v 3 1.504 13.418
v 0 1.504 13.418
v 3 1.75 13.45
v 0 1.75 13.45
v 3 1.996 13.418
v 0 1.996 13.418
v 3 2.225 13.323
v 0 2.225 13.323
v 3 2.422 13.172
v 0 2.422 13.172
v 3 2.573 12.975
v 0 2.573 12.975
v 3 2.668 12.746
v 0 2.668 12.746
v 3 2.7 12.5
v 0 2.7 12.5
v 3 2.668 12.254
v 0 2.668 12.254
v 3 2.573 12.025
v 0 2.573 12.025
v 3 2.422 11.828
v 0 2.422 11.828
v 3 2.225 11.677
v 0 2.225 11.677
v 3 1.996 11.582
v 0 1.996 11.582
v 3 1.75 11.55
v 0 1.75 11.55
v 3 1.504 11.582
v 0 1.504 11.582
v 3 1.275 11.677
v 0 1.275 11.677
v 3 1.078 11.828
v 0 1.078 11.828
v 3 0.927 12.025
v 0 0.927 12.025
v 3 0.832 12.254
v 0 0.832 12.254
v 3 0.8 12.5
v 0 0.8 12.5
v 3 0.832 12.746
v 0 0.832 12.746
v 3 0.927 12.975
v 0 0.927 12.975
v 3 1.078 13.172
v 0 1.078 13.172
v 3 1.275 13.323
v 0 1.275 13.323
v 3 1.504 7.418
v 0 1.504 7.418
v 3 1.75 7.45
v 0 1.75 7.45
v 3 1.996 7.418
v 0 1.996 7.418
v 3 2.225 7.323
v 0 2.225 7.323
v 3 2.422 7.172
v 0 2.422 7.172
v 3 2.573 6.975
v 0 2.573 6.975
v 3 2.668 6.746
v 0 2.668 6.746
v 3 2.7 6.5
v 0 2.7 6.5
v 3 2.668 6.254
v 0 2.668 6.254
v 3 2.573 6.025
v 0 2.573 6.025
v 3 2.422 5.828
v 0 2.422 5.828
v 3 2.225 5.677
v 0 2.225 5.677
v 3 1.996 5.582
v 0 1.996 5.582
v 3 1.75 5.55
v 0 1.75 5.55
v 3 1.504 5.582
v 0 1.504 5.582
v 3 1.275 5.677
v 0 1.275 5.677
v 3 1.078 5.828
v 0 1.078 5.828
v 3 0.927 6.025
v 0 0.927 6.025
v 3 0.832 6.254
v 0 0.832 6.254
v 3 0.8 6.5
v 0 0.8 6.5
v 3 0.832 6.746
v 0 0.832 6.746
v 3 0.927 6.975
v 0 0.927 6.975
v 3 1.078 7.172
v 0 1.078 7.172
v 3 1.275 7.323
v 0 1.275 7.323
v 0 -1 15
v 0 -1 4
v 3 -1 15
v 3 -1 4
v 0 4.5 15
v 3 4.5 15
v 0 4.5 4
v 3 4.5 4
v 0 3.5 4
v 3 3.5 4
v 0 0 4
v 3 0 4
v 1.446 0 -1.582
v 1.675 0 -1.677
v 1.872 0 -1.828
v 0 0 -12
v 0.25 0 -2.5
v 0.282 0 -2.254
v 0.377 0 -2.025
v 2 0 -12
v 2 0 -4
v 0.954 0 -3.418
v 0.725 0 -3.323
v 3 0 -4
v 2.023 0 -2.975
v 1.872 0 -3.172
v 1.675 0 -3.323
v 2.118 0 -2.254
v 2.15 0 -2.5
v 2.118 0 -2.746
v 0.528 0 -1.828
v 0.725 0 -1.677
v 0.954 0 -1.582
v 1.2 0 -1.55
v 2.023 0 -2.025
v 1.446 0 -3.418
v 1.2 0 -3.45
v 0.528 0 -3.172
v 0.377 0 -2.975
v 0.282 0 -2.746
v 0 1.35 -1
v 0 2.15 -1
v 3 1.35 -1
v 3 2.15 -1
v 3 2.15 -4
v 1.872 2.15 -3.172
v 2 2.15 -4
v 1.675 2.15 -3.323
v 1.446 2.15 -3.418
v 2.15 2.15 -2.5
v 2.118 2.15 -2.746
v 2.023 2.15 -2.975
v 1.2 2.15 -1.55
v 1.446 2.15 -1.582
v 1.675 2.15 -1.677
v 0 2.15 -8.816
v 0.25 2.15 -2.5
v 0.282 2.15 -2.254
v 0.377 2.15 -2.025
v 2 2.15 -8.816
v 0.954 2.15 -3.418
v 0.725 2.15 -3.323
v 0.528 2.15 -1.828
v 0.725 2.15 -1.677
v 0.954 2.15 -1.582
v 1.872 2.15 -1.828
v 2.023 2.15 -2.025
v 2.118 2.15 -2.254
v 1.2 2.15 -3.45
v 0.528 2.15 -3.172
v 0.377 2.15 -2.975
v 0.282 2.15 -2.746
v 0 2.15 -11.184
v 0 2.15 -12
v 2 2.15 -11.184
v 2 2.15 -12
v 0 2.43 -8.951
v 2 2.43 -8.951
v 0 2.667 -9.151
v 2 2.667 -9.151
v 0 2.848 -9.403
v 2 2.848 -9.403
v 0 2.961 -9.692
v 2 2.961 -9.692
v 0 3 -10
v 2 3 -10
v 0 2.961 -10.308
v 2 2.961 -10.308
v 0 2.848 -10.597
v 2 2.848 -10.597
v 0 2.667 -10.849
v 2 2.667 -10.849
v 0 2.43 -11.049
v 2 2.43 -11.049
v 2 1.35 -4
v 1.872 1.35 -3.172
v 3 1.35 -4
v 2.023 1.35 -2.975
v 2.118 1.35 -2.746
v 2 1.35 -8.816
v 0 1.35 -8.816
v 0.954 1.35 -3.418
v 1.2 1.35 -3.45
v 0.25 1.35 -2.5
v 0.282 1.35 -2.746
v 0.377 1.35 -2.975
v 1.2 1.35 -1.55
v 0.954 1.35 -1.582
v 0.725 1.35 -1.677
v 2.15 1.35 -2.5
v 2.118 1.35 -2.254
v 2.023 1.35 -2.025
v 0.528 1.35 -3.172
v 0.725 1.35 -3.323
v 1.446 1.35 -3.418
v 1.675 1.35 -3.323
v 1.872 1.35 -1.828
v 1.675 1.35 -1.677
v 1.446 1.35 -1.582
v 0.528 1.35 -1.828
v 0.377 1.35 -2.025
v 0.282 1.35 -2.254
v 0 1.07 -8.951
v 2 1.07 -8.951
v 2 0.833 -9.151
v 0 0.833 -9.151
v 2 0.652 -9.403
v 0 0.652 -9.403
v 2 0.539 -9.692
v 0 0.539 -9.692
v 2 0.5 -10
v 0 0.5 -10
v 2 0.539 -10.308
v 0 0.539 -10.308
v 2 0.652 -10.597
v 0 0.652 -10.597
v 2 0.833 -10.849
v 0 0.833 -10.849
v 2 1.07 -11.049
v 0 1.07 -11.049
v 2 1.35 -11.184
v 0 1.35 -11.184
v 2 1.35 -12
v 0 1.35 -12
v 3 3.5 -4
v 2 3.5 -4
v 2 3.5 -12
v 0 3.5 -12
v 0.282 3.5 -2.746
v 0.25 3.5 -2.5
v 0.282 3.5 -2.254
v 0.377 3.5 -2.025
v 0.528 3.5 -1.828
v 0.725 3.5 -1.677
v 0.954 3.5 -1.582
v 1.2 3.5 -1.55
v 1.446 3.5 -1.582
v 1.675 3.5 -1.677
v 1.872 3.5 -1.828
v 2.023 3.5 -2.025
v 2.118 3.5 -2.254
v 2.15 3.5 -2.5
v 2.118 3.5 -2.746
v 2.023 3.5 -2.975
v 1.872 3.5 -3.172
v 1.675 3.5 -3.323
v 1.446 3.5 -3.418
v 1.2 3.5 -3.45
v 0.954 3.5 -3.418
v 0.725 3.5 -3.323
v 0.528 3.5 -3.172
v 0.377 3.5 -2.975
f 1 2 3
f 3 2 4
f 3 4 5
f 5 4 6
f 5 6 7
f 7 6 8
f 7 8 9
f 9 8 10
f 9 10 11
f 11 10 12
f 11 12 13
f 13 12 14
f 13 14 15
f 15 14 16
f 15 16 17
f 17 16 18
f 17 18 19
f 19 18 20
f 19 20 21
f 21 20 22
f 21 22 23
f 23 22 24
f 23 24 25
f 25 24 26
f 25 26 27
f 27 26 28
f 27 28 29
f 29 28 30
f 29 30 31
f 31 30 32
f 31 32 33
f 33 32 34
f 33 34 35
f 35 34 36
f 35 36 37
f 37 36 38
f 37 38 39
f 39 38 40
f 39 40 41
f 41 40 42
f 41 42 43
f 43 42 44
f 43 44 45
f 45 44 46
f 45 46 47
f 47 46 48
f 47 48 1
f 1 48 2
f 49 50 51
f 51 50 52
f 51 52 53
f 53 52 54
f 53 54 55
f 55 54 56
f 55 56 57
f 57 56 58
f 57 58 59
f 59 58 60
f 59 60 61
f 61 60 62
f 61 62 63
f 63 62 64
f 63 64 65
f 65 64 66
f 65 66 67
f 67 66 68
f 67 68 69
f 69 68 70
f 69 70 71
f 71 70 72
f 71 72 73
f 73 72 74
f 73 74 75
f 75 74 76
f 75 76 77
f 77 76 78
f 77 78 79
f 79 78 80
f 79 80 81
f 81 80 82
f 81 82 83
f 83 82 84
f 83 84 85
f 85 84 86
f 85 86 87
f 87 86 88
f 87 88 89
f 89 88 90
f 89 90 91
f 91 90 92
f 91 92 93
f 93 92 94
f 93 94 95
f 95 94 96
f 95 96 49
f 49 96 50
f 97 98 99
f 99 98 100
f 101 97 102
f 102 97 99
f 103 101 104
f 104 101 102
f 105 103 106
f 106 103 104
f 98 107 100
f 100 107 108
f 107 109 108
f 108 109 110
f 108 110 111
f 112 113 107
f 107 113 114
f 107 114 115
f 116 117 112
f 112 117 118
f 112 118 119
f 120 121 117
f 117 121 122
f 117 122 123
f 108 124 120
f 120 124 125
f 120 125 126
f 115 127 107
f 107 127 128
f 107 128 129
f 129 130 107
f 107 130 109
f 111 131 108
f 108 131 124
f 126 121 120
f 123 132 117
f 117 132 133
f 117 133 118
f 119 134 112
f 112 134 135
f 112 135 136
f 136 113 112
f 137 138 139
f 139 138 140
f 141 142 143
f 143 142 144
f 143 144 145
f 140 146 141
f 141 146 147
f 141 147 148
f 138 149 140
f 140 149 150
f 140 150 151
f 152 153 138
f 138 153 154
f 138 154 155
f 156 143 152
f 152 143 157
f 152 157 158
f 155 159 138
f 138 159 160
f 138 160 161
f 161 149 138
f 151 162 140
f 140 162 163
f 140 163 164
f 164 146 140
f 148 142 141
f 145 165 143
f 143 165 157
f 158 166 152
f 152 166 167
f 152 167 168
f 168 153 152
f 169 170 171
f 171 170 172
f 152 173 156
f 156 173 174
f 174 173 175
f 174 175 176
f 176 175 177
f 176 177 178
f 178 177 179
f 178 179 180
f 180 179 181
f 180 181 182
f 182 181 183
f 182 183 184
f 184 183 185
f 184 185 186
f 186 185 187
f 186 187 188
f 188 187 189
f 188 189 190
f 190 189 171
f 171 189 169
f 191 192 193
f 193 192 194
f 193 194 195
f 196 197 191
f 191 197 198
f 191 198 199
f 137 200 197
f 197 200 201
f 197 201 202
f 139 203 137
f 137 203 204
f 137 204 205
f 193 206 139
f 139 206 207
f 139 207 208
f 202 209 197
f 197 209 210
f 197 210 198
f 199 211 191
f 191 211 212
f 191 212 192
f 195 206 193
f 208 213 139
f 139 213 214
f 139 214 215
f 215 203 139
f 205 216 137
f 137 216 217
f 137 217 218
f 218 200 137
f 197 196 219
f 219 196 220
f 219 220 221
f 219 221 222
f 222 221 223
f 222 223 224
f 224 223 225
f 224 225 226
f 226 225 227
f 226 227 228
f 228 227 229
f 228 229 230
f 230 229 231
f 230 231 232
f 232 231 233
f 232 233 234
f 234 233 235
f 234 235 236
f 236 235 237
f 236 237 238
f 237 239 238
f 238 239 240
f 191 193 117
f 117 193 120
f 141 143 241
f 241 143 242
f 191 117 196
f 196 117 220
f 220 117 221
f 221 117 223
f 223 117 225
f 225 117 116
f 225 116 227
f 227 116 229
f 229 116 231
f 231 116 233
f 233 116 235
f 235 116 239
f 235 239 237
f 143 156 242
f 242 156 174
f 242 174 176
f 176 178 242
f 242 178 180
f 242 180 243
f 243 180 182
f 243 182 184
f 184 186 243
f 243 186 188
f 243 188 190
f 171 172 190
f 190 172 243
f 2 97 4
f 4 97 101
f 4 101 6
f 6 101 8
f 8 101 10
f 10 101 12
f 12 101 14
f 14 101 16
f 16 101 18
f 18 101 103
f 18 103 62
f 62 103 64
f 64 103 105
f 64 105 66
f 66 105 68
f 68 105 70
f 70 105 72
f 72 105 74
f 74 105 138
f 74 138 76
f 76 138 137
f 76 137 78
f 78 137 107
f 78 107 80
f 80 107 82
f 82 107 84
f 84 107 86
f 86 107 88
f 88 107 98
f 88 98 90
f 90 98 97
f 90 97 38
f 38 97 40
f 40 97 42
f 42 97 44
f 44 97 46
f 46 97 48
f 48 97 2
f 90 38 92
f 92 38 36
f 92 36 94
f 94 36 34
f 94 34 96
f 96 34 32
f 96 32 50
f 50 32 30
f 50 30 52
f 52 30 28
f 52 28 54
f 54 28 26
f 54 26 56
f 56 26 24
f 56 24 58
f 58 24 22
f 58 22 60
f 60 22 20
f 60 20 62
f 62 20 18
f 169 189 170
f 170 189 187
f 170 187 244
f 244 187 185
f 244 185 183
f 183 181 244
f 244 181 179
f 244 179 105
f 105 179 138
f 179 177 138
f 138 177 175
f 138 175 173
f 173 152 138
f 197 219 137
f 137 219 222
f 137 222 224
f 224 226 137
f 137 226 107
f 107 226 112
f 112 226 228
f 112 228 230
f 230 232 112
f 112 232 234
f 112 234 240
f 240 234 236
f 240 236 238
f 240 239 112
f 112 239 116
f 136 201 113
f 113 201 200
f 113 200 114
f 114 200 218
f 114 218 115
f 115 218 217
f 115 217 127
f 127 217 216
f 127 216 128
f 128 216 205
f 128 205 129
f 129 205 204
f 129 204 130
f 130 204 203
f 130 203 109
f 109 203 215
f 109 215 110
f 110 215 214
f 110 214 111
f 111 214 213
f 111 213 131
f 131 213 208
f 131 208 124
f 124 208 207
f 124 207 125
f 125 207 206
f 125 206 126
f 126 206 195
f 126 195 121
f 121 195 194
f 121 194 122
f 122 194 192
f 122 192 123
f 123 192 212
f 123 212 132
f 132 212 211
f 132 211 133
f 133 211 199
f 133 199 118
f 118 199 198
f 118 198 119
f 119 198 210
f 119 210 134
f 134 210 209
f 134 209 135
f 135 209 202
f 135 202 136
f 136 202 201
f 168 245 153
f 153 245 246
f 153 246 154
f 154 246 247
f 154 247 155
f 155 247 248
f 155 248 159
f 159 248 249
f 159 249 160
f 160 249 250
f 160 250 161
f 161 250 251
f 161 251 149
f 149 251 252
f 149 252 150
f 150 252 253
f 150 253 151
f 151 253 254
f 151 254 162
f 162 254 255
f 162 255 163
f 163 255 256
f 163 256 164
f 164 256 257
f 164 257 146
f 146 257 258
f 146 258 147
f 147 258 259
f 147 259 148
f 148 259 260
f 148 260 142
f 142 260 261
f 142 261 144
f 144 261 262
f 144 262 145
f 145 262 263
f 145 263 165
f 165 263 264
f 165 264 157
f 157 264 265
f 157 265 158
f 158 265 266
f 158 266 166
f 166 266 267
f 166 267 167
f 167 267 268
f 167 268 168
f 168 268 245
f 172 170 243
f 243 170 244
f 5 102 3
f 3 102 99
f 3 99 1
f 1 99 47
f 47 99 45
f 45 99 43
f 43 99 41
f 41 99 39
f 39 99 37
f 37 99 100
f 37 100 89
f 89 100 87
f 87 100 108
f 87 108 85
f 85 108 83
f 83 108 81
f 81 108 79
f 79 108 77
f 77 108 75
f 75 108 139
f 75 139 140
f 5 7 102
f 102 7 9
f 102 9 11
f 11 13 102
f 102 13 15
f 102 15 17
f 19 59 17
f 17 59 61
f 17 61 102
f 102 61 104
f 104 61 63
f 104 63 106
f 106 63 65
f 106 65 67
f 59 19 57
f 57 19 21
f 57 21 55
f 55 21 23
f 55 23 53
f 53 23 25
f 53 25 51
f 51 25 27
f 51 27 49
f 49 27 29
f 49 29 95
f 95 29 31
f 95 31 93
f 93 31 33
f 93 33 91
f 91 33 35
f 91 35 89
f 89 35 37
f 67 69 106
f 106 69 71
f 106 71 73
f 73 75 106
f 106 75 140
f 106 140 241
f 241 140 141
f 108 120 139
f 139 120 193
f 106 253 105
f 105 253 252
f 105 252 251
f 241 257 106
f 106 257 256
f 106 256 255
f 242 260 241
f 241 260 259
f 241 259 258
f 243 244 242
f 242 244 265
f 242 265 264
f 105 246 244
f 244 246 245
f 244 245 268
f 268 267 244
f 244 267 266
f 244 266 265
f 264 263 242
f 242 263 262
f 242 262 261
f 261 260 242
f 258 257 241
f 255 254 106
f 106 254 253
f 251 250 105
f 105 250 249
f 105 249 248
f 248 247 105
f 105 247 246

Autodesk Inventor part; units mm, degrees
ref_plane "YZ Plane" through (0, 0, 0) normal (1, 0, 0) x (0, 1, 0)
ref_plane "XZ Plane" through (0, 0, 0) normal (0, 1, 0) x (-1, 0, 0)
ref_plane "XY Plane" through (0, 0, 0) normal (0, 0, 1) x (1, 0, 0)
sketch "Sketch2" plane through (0, 0, 0) normal (0, 1, 0) x (-1, 0, 0)
  line L0 (0, 0) -> (0, -12)
  line L1 (0, 0) -> (0, 10)
  line L2 (0, -12) -> (-2, -12)
  line L3 (-2, -12) -> (-2, -4)
  line L4 (-3, -4) -> (-2, -4)
  line L5 (-3, -4) -> (-3, -2.5) construction
  line L6 (-2, 10) -> (0, 10)
  line L7 (-3, -2.5) -> (0, -2.5) construction
  circle A0 centre (-1.2, -2.5) radius 0.95
  line L8 (-3, -4) -> (-3, 10)
  line L9 (-3, 10) -> (-2, 10)
  line L10 (0, 0) -> (-3, 0) construction
  dimension "d1" = 10
  dimension "d2" = 2
  dimension "d9" = 1.9
  dimension "d10" = 8
  dimension "d11" = 3
  dimension "d12" = 1.8
  dimension "d38" = 4
extrude "Extrusion1" add sketch "Sketch2" along normal blind 3.5
sketch "Sketch3" plane through (3, 0, 10) normal (1, 0, 0) x (0, 0, -1)
  line L0 (0, 0) -> (0, 3.5) projected
  line L1 (0, 1.75) -> (22, 1.75) construction
  line L2 (22, 1.75) -> (22, 2.15)
  line L3 (22, 0) -> (22, 3.5) projected
  line L4 (11, 2.15) -> (11, 1.35)
  line L5 (22, 2.15) -> (21.1843, 2.15)
  line L6 (18.8157, 2.15) -> (11, 2.15)
  line L7 (11, 1.35) -> (18.8157, 1.35)
  line L8 (21.1843, 1.35) -> (22, 1.35)
  arc A0 (18.8157, 1.35) -> (21.1843, 1.35) centre (20, 1.75) ccw
  arc A1 (21.1843, 2.15) -> (18.8157, 2.15) centre (20, 1.75) ccw
  line L9 (22, 1.75) -> (22, 1.35)
  point P0 (10, 0)
  dimension "d16" = 2
  dimension "d17" = 0.4
  dimension "d18" = 11
  dimension "d19" = 0.8
extrude "Extrusion2" cut sketch "Sketch3" against normal blind 10
sketch "Sketch4" plane through (0, 0, -12) normal (-1, 0, 0) x (0, 0, 1)
  point P0 (12, 0)
sketch "Sketch5" plane through (0, 0, -12) normal (-1, 0, 0) x (0, 0, 1)
  line L0 (16, 0) -> (16, -1)
  line L1 (16, -1) -> (22, -1)
  line L2 (22, 0) -> (16, 0)
  line L3 (16, 3.5) -> (16, 4.5)
  line L4 (16, 4.5) -> (22, 4.5)
  line L5 (22, 3.5) -> (16, 3.5)
  line L6 (22, 4.5) -> (27, 4.5)
  line L7 (27, 4.5) -> (27, -1)
  line L8 (27, -1) -> (22, -1)
  line L9 (22, 3.5) -> (22, 0)
  line L10 (12, 0) -> (12, 3.5) construction
  dimension "d23" = 1
  dimension "d24" = 1
  dimension "d27" = 5
  dimension "d39" = 5.5
  dimension "d40" = 4
extrude "Extrusion3" add sketch "Sketch5" against normal blind 3
sketch "Sketch6" plane through (0, 0, -12) normal (-1, 0, 0) x (0, 0, 1)
  line L0 (22, 1.75) -> (14, 1.75) construction
  line L1 (27, 4.5) -> (16, 4.5) projected
  circle A0 centre (24.5, 1.75) radius 0.95
  line L2 (27, -1) -> (27, 4.5) projected
  circle A1 centre (18.5, 1.75) radius 0.95
  point P0 (12, 0)
  dimension "d28" = 2.75
  dimension "d32" = 1.9
  dimension "d33" = 2.5
  dimension "d34" = 1.9
  dimension "d35" = 6
extrude "Extrusion4" cut sketch "Sketch6" against normal blind 3
properties part number "ferrule holder"
